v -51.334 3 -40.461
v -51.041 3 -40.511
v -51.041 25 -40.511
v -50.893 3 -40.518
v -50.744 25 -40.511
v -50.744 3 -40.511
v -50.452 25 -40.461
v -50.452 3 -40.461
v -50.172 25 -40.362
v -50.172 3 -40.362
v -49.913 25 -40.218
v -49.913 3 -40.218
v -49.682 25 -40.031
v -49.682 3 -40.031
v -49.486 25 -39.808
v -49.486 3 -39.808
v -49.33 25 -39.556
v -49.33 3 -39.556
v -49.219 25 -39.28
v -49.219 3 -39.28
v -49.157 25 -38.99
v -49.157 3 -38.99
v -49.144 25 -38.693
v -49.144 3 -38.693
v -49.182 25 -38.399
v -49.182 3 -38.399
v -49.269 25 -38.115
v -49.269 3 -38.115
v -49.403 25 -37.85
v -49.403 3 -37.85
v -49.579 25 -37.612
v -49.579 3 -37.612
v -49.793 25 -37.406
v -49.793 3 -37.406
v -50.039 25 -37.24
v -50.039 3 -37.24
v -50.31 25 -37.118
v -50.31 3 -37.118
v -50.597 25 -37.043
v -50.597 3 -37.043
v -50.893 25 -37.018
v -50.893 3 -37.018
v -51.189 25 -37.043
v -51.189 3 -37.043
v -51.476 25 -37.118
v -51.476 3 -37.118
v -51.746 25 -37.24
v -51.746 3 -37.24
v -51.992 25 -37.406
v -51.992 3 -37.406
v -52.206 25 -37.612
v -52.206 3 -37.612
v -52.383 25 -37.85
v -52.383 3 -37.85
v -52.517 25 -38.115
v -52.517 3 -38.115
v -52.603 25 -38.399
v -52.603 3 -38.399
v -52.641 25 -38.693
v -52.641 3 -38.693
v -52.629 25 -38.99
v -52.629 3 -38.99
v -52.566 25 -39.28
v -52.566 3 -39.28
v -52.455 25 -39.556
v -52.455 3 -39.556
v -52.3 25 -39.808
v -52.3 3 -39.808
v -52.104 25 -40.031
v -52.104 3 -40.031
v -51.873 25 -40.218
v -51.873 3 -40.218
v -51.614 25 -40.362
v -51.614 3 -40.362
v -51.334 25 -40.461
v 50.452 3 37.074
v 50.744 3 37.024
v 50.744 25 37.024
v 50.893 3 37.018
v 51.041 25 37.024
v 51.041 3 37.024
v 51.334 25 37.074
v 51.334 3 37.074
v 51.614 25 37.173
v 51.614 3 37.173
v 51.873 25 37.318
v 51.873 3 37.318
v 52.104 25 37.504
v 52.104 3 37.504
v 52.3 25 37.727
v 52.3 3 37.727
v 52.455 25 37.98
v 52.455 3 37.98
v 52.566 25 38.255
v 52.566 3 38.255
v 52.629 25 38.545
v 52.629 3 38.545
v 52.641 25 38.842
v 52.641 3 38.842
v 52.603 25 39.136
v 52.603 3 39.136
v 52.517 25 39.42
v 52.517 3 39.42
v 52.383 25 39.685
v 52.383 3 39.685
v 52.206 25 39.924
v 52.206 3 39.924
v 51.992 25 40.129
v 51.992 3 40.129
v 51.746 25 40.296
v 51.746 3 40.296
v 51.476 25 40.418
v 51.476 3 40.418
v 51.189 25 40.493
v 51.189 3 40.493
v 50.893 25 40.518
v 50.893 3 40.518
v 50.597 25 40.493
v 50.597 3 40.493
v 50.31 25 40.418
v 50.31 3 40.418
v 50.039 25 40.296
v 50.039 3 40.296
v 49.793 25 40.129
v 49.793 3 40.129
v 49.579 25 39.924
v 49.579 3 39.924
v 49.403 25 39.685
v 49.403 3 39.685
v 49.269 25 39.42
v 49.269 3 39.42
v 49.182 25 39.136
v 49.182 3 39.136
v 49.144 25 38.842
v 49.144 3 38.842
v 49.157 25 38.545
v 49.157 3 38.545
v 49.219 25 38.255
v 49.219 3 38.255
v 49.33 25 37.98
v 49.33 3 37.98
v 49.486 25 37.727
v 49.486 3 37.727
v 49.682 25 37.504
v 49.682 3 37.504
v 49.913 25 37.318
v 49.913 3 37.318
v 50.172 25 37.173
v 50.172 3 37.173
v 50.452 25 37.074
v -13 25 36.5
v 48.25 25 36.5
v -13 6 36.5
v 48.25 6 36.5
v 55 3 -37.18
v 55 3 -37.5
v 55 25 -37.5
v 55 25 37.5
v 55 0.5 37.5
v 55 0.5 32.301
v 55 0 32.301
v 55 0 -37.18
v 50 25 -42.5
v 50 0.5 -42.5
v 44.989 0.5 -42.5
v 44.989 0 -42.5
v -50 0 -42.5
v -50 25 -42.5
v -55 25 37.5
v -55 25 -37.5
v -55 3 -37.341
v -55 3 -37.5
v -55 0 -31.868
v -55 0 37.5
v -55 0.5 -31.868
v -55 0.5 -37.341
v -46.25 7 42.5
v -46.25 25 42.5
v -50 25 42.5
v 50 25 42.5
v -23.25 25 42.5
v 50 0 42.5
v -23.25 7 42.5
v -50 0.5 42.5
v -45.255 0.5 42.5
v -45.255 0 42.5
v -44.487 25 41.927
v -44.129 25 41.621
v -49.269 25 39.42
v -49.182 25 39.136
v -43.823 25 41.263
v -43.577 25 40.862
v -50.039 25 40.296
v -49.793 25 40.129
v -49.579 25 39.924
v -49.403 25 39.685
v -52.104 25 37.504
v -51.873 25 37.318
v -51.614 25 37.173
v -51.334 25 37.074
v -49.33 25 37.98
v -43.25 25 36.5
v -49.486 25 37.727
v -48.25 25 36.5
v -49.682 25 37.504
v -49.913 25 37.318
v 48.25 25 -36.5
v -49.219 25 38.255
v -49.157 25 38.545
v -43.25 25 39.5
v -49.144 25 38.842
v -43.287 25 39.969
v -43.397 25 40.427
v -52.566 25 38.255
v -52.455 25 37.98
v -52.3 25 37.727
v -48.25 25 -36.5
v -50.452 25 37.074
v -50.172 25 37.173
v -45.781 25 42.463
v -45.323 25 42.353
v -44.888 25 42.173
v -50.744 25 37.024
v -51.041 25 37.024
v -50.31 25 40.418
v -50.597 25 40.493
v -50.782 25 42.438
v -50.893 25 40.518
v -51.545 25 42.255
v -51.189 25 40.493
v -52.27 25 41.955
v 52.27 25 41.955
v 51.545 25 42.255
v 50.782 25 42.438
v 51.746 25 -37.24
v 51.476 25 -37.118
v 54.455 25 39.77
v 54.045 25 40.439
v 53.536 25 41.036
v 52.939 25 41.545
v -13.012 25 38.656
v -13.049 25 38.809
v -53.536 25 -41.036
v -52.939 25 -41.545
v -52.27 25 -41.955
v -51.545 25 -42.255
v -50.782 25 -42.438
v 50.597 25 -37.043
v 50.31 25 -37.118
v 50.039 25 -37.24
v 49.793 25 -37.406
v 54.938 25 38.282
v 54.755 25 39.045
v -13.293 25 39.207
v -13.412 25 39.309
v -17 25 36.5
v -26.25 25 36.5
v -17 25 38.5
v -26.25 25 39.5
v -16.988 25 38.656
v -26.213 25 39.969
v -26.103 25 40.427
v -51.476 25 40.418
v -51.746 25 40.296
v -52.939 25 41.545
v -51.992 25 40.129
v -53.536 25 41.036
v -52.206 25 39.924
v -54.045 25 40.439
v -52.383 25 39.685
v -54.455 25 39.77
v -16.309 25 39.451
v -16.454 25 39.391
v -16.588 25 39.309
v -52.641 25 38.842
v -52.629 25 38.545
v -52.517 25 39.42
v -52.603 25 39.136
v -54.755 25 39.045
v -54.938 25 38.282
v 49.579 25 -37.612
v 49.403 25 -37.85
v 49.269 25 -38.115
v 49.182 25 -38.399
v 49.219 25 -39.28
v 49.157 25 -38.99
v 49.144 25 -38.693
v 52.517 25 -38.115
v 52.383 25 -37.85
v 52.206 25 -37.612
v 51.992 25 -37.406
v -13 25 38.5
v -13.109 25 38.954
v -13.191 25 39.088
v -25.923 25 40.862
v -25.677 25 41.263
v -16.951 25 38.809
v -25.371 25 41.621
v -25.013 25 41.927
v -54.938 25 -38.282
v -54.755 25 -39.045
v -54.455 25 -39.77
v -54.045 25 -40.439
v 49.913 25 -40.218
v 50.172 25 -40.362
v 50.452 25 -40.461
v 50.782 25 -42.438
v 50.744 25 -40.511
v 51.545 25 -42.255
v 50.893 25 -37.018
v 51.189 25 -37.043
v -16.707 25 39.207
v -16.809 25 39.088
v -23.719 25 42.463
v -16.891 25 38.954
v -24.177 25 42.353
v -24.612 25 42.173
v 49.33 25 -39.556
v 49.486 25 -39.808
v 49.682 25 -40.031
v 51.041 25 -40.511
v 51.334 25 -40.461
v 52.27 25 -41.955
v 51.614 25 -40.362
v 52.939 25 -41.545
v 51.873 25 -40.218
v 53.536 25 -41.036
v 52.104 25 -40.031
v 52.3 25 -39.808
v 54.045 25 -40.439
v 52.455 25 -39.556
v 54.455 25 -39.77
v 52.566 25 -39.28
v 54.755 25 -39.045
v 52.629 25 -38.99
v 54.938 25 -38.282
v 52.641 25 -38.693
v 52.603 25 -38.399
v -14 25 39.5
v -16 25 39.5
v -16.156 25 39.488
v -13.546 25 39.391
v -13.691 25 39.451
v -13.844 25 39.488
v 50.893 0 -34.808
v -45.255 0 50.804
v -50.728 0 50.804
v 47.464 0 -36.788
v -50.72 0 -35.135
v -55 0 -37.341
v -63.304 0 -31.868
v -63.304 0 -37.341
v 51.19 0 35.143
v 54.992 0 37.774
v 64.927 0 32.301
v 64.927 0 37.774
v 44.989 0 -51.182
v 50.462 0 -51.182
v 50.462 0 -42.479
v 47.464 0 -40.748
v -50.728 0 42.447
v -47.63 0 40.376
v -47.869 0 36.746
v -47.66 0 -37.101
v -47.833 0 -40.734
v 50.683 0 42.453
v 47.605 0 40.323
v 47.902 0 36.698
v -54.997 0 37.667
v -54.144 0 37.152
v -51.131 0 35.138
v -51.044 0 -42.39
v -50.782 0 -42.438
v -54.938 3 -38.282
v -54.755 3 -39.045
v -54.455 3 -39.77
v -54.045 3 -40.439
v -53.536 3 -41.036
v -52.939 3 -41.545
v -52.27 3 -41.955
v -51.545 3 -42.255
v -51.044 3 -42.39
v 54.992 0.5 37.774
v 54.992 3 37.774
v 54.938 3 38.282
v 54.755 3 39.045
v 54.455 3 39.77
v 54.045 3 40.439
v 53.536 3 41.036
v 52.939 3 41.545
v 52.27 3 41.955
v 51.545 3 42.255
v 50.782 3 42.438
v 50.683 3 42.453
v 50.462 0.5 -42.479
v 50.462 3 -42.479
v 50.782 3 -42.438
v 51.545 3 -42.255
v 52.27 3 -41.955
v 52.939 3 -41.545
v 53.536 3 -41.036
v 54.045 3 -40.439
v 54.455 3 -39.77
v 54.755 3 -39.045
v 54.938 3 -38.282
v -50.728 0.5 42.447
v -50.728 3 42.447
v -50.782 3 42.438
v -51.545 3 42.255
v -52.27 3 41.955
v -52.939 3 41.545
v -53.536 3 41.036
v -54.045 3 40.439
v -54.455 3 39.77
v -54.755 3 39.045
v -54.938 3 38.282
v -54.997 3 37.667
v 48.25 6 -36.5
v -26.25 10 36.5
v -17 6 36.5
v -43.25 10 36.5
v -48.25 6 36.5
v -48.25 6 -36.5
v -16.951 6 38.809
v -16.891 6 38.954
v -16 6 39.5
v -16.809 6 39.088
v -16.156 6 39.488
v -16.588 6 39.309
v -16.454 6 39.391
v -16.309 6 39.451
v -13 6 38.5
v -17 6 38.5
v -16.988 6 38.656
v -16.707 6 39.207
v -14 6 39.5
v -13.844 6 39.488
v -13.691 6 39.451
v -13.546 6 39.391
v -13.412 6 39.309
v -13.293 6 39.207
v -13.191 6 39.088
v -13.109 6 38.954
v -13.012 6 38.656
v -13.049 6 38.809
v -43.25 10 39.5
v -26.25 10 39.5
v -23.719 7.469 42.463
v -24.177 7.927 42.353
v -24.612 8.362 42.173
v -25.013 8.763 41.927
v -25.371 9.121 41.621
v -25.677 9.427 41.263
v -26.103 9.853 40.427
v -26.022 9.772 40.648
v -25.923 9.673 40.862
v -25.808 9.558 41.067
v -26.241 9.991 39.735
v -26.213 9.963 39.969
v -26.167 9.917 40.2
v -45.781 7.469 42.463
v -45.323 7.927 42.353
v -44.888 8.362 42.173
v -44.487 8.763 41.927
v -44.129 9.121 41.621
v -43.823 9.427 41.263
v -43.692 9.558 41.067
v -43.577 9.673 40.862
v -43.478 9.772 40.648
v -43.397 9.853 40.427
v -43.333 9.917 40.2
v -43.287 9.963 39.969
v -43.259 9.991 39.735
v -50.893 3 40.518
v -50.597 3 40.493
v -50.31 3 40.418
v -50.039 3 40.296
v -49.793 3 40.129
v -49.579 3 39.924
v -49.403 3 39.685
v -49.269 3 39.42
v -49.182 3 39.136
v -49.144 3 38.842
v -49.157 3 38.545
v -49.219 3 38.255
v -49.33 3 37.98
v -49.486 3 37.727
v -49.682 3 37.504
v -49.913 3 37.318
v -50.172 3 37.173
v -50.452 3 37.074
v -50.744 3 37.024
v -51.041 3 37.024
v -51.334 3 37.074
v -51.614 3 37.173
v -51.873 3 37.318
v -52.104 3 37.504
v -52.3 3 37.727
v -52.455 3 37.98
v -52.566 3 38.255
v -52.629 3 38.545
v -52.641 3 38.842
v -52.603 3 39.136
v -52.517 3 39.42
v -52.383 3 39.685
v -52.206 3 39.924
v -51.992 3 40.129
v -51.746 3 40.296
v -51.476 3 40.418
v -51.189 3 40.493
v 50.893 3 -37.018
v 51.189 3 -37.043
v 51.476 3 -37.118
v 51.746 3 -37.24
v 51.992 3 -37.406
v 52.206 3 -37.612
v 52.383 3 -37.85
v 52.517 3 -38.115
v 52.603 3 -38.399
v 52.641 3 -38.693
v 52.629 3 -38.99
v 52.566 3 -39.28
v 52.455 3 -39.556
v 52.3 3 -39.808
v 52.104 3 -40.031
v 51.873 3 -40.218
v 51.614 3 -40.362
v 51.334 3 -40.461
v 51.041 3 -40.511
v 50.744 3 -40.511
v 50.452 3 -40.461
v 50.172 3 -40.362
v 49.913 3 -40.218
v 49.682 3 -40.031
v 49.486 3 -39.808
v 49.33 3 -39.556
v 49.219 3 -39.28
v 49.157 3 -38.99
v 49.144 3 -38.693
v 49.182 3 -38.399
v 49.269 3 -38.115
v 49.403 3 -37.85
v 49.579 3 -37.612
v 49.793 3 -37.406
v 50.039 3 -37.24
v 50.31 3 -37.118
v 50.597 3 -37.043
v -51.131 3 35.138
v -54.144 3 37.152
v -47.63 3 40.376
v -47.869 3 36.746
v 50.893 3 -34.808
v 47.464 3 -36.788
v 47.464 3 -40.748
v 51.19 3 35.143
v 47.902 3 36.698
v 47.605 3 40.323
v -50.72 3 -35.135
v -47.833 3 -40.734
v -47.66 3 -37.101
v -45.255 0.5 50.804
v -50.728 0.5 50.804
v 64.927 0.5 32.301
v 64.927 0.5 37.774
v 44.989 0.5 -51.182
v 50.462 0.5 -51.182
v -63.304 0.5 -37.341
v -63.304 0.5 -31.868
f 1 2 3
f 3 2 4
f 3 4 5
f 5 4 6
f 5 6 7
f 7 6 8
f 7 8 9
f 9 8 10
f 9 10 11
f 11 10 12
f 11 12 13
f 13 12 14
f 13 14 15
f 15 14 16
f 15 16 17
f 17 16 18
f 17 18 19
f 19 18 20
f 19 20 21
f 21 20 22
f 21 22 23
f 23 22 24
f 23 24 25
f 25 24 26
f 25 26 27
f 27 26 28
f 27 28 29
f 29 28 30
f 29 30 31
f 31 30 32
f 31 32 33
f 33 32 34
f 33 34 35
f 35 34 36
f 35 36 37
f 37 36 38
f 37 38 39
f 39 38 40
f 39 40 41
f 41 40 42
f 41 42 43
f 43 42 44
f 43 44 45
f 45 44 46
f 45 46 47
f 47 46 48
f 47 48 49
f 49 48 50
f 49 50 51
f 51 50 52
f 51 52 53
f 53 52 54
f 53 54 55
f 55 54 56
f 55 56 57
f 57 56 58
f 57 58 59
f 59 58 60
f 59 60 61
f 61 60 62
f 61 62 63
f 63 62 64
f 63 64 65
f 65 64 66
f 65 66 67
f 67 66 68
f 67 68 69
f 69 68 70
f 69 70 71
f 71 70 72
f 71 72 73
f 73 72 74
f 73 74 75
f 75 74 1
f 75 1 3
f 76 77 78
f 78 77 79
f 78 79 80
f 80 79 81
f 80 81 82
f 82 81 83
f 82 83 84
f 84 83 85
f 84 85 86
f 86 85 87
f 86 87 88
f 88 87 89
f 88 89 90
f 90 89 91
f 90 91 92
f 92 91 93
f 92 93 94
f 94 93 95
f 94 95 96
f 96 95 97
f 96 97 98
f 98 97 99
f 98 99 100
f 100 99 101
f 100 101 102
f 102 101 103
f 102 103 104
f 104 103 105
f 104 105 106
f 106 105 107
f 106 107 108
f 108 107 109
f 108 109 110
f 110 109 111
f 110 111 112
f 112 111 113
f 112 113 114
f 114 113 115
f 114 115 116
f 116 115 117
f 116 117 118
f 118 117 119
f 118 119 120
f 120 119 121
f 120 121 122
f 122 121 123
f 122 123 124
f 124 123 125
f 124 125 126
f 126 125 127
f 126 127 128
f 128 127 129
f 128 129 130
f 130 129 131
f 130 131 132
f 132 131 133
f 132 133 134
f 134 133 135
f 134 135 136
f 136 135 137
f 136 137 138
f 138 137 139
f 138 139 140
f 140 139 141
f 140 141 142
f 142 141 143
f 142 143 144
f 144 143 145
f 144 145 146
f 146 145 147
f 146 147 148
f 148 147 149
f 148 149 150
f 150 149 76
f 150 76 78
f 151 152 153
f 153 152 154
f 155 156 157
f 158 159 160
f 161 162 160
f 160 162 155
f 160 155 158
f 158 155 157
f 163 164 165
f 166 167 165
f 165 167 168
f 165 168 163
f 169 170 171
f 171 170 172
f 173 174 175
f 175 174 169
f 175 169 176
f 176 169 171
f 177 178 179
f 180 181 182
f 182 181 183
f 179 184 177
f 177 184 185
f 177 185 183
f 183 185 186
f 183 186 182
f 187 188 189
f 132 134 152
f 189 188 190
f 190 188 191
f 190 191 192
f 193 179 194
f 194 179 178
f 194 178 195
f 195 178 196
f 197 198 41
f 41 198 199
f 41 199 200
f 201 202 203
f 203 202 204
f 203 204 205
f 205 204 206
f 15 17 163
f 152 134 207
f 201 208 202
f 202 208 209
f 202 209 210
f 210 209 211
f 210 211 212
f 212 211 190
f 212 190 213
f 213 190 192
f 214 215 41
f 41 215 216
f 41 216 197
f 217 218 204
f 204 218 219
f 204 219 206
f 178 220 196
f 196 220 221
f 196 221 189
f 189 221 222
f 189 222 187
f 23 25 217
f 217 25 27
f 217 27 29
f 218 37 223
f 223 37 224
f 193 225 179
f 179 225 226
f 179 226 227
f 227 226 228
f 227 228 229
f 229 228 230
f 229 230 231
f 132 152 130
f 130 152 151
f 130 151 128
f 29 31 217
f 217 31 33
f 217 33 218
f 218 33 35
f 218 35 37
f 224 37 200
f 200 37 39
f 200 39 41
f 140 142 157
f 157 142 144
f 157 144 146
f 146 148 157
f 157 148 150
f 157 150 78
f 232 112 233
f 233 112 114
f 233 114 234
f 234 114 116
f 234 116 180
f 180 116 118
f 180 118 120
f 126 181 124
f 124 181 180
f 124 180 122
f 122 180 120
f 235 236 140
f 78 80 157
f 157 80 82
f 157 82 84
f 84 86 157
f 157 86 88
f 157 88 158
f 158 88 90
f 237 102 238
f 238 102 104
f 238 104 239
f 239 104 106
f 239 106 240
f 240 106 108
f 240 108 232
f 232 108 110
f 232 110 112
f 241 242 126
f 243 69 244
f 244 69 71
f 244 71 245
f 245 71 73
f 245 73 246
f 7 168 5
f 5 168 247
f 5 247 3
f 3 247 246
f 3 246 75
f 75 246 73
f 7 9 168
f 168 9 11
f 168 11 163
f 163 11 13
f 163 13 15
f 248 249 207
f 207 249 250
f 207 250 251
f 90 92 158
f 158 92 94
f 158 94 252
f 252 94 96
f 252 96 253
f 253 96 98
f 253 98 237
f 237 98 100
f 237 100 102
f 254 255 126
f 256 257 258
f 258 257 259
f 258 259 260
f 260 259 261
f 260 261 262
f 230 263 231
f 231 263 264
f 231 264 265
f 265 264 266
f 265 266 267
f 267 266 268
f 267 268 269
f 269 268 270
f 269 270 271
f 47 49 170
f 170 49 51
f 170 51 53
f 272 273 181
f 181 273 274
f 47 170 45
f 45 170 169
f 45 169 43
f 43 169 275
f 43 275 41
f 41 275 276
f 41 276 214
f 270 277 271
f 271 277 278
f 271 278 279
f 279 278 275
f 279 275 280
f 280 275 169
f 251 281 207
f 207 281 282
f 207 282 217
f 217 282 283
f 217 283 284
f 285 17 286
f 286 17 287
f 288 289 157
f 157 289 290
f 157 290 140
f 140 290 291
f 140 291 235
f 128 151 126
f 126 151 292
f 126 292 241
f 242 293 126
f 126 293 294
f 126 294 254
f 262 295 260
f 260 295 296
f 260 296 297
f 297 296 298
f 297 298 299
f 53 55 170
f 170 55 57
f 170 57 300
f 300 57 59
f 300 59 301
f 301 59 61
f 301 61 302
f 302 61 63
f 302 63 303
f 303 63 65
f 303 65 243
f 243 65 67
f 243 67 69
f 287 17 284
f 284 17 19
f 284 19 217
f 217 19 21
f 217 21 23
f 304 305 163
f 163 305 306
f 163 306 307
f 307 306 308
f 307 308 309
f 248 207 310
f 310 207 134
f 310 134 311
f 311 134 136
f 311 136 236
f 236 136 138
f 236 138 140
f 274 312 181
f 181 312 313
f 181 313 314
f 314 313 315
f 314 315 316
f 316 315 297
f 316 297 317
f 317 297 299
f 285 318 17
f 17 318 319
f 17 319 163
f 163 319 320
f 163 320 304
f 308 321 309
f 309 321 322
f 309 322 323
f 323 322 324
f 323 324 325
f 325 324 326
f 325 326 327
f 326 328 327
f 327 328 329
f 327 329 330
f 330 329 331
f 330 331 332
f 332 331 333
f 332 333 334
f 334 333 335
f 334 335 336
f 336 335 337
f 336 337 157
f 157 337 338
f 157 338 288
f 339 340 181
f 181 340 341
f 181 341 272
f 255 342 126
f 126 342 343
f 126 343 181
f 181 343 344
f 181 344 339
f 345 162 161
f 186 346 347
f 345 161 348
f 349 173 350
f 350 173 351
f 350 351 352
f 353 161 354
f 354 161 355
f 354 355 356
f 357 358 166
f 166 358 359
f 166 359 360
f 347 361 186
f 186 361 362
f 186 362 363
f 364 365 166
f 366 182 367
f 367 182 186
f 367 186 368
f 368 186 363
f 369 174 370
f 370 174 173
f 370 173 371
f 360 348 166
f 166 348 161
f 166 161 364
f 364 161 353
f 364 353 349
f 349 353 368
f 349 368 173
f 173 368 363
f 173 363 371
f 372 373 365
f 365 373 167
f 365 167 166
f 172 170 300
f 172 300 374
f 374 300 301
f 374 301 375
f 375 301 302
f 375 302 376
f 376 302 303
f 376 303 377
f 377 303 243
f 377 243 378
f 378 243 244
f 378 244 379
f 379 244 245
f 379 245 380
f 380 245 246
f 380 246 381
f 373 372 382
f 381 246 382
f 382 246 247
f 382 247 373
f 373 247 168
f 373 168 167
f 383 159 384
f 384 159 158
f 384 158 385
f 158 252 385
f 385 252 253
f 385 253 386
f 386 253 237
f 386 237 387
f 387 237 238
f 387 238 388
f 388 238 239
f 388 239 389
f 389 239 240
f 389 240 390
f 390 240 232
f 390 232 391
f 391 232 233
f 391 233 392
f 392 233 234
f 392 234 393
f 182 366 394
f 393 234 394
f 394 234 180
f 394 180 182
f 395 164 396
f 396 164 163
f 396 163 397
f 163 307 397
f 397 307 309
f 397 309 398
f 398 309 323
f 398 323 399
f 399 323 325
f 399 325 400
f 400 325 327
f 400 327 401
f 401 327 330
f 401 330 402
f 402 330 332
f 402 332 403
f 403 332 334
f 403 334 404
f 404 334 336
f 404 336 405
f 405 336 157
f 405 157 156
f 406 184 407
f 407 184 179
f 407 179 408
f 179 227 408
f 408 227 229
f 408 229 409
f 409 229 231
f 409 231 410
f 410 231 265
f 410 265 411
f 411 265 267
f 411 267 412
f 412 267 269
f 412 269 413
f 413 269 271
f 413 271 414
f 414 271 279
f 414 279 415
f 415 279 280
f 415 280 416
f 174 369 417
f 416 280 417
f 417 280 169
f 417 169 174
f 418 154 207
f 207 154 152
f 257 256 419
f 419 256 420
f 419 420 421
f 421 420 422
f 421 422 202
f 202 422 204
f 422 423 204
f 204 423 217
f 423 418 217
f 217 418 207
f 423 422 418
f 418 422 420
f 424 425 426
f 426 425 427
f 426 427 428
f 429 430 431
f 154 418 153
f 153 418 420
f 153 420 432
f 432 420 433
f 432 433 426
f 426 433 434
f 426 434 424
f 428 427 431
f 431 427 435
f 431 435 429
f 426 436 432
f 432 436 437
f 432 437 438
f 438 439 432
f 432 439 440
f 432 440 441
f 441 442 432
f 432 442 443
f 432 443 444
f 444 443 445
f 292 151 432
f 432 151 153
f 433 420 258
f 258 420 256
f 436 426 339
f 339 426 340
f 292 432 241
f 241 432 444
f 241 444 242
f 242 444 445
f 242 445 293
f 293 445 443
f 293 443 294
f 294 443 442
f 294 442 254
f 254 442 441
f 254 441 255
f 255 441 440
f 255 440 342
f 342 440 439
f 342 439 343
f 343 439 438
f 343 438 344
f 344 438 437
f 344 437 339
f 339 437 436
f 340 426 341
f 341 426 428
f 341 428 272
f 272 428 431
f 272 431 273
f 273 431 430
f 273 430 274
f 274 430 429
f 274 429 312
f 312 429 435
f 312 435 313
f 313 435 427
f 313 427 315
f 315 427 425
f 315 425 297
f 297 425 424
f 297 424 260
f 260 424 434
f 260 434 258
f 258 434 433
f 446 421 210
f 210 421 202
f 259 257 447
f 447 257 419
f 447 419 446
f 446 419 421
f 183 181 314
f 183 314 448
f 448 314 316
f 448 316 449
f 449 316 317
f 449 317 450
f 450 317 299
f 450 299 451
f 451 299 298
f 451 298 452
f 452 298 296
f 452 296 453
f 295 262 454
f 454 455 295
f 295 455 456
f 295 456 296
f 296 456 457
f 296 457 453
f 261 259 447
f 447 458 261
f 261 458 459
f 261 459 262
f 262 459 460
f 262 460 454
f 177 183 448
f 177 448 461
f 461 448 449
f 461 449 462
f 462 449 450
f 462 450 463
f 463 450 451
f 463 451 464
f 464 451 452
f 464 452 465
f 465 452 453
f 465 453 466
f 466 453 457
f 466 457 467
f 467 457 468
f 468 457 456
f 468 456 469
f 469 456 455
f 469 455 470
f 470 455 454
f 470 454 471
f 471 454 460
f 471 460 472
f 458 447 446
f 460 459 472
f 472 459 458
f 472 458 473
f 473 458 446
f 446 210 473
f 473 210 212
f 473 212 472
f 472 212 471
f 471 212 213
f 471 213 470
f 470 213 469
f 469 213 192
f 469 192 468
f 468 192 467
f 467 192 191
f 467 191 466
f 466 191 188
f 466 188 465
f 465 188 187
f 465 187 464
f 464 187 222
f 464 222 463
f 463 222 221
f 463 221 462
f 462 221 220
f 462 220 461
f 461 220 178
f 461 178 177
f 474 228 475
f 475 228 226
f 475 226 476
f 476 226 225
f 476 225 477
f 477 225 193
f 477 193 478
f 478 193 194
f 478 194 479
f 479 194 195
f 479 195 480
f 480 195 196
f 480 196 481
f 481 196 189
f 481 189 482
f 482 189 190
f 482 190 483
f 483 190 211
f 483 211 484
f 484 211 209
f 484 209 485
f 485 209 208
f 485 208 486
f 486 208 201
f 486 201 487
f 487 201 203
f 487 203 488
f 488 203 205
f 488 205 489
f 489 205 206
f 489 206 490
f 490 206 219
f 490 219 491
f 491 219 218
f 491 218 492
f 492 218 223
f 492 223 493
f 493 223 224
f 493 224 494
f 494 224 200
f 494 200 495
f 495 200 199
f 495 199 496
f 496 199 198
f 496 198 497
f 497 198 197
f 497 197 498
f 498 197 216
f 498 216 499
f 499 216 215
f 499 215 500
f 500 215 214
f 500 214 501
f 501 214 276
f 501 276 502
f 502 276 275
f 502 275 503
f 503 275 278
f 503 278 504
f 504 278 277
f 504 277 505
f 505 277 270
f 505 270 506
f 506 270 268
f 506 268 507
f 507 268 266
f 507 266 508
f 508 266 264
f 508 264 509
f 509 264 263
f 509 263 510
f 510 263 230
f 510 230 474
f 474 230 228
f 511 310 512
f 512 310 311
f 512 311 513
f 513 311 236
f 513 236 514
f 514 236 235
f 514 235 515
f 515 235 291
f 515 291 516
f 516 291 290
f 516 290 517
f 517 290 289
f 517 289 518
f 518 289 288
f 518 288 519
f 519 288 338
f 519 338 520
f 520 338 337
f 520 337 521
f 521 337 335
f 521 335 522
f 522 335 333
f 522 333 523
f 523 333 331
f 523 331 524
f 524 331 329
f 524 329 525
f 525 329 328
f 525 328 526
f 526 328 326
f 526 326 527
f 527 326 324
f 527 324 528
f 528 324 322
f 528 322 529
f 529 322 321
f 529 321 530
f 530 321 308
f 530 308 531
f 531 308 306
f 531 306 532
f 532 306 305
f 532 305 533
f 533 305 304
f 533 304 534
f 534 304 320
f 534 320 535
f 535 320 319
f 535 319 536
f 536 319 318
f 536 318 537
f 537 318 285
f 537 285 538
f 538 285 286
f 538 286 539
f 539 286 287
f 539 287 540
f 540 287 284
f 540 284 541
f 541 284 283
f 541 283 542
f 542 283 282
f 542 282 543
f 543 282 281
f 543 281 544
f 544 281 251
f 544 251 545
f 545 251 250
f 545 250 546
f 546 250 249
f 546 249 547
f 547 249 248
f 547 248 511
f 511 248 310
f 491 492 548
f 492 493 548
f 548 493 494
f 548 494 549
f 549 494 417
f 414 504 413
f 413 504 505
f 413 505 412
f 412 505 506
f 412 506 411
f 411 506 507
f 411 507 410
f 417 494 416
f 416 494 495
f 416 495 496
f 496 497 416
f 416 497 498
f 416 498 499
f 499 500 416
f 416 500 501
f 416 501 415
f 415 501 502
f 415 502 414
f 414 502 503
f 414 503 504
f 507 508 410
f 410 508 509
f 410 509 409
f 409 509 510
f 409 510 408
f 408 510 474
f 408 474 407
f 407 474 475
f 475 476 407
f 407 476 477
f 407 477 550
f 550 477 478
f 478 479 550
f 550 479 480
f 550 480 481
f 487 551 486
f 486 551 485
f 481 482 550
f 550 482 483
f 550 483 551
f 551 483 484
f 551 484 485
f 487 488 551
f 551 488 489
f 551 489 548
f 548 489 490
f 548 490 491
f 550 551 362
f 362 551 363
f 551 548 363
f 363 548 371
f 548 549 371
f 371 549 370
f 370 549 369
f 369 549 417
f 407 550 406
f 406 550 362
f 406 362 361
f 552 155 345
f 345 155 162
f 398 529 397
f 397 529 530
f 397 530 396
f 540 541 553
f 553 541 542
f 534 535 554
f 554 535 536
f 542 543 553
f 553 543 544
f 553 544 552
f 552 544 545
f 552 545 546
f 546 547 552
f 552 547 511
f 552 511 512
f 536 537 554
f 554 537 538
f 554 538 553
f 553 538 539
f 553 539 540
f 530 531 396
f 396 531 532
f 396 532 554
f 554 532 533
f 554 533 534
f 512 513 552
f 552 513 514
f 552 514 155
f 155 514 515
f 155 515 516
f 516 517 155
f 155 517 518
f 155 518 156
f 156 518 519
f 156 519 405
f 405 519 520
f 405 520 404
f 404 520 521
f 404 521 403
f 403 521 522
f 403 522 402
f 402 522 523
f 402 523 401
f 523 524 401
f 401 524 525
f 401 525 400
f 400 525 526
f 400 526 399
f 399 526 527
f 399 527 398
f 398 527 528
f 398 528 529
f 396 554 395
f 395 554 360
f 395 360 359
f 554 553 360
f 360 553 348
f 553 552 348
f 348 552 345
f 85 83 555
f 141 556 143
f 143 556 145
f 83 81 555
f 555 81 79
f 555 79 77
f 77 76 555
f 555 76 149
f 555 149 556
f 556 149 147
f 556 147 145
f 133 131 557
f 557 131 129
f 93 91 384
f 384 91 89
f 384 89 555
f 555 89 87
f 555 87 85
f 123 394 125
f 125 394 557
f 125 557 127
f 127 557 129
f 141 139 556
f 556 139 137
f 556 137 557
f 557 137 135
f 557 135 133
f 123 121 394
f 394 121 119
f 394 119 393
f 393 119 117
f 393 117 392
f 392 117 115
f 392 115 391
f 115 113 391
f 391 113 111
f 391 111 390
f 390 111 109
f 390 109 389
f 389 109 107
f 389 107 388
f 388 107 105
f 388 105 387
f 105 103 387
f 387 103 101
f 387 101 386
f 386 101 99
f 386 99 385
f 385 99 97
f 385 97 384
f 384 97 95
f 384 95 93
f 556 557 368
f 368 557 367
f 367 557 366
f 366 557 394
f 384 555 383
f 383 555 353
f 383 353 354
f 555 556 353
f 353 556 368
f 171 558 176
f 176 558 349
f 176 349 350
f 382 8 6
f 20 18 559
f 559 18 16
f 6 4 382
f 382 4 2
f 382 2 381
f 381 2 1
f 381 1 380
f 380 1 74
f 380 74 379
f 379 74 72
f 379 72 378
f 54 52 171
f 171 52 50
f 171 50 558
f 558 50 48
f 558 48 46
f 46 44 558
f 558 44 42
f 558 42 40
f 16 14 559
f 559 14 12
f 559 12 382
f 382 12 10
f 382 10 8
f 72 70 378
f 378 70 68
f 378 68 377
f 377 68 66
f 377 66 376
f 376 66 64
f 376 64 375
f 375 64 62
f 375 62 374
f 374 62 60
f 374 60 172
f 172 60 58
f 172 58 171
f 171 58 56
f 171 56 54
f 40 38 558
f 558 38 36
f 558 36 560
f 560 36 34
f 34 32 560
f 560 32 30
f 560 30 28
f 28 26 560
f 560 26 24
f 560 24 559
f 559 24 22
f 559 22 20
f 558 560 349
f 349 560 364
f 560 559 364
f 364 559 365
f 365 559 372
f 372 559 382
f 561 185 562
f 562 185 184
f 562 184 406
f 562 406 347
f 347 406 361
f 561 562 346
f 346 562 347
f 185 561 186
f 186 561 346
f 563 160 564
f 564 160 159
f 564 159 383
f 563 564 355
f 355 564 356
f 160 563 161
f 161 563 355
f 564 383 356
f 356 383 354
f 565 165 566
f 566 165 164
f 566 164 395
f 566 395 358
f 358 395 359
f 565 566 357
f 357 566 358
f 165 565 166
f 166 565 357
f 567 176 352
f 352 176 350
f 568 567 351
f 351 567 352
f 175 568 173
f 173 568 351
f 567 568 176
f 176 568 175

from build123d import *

# Parameters (mm, degrees)
SKETCH1_W                 = 110
SKETCH1_H                 = 85
BASE_DEPTH                = 25
FILLET1_R                 = 5
SKETCH2_W                 = 96.5
SKETCH2_H                 = 73
BASKET_DEPTH              = 19
SKETCH3_W                 = 4
SKETCH3_H                 = 6
WIRE_CHANNEL_DEPTH        = 19
WIRE_CHANNEL_ROUNDING_R   = 1
SWITCH_CUT_OUT_REACH      = 106.283
SKETCH5_W                 = 17
SKETCH5_H                 = 15
SWITCH_CUT_OUT_ROUNDING_R = 3
SKETCH14_R                = 1.75
CORNER_HOLES_DEPTH        = 74.866433513
BOTTOM_NUT_CUT_OUT_DEPTH  = 3
SKETCH18_W                = 8.304257035
SKETCH18_H                = 5.473277891
PRINTING_TIE_DOWNS_DEPTH  = 0.5


with BuildPart() as part:
    # Sketch1 → Base (new body)
    with BuildSketch(Plane(origin=(0, 0, 0), x_dir=(1, 0, 0), z_dir=(0, 1, 0))):
        Rectangle(SKETCH1_W, SKETCH1_H)
    extrude(amount=BASE_DEPTH)

    # Fillet1
    fillet1_edges = [part.edges().sort_by_distance(p)[0] for p in [
        (55, 12.5, 42.5),
        (-55, 12.5, 42.5),
        (-55, 12.5, -42.5),
        (55, 12.5, -42.5),
    ]]
    fillet(fillet1_edges, radius=FILLET1_R)

    # Sketch2 → Basket (cut)
    with BuildSketch(Plane(origin=(0, 25, 0), x_dir=(1, 0, 0), z_dir=(0, 1, 0))):
        Rectangle(SKETCH2_W, SKETCH2_H)
    extrude(amount=-BASKET_DEPTH, mode=Mode.SUBTRACT)

    # Sketch3 → Wire Channel (cut)
    with BuildSketch(Plane(origin=(0, 25, 0), x_dir=(1, 0, 0), z_dir=(0, 1, 0))):
        with Locations((-15, -36.5)):
            Rectangle(SKETCH3_W, SKETCH3_H)
    extrude(amount=-WIRE_CHANNEL_DEPTH, mode=Mode.SUBTRACT)

    # Wire Channel Rounding
    wire_channel_rounding_edges = [part.edges().sort_by_distance(p)[0] for p in [
        (-17, 15.5, 39.5),
        (-13, 15.5, 39.5),
    ]]
    fillet(wire_channel_rounding_edges, radius=WIRE_CHANNEL_ROUNDING_R)

    # Sketch5 → Switch Cut-out (cut, up to next)
    with BuildSketch(Plane.XY.offset(42.5), mode=Mode.PRIVATE) as switch_cut_out_sk1:
        with Locations((-34.75, 17.5)):
            Rectangle(SKETCH5_W, SKETCH5_H)
    switch_cut_out_tool1 = extrude(switch_cut_out_sk1.sketch, amount=-SWITCH_CUT_OUT_REACH, mode=Mode.PRIVATE) & part.part
    add(switch_cut_out_tool1.solids().sort_by_distance((-34.75, 17.5, 42.5))[0], mode=Mode.SUBTRACT)

    # Switch Cut-out Rounding
    switch_cut_out_rounding_edges = [part.edges().sort_by_distance(p)[0] for p in [
        (-43.25, 17.5, 42.5),
        (-34.75, 10, 42.5),
        (-26.25, 17.5, 42.5),
    ]]
    fillet(switch_cut_out_rounding_edges, radius=SWITCH_CUT_OUT_ROUNDING_R)

    # Sketch14 → Corner Holes (cut, through all)
    with BuildSketch(Plane(origin=(0, 25, 0), x_dir=(1, 0, 0), z_dir=(0, 1, 0))):
        with Locations(Location((-50.892766953, 38.767766953, 0), (0, 0, 270))):
            Circle(SKETCH14_R)
        with Locations(Location((50.892766953, 38.767766953, 0), (0, 0, 270))):
            Circle(SKETCH14_R)
        with Locations(Location((50.892766953, -38.767766953, 0), (0, 0, 270))):
            Circle(SKETCH14_R)
        with Locations(Location((-50.892766953, -38.767766953, 0), (0, 0, 270))):
            Circle(SKETCH14_R)
    extrude(amount=-CORNER_HOLES_DEPTH, mode=Mode.SUBTRACT)

    # Sketch15 → Bottom Nut Cut-out (cut)
    with BuildSketch(Plane.XZ):
        Polygon((-50.64101323, 42.388469214), (-52.178282629, 43.416097239), (-55.727023172, 38.10739593), (-54.143831126, 37.15203238), (-51.13140477, 35.13829702), (-47.868872697, 36.746365575), (-47.630234881, 40.375835508), align=None)
        Polygon((50.595962101, 42.39294376), (52.091508492, 43.427758232), (55.676210978, 38.247033564), (54.180664587, 37.212219092), (51.189571805, 35.142590146), (47.901674171, 36.698138008), (47.604869319, 40.323314814), align=None)
        Polygon((54.167766953, -36.699113605), (55.742766953, -37.608440279), (52.313760602, -43.547653498), (50.738760602, -42.638326824), (47.463760602, -40.747504693), (47.463760602, -36.788029213), (50.892766953, -34.808291473), align=None)
        Polygon((-53.9527362, -36.801402743), (-55.569189191, -37.634817242), (-52.682156679, -43.23437466), (-51.065703688, -42.400960161), (-47.832797706, -40.734131163), (-47.65986097, -37.100937955), (-50.719830218, -35.134573745), align=None)
    extrude(amount=-BOTTOM_NUT_CUT_OUT_DEPTH, mode=Mode.SUBTRACT)

    # Sketch18 → Printing Tie-downs (add)
    with BuildSketch(Plane.XZ):
        Polygon((-50.728122477, 42.446699673), (-50.728122477, 50.804257035), (-45.254844585, 50.804257035), (-45.254844585, 42.5), align=None)
        Polygon((54.992489727, 37.773945836), (64.927443113, 37.773945836), (64.927443113, 32.300667944), (55, 32.300667944), align=None)
        Polygon((50.462105691, -42.478600037), (50.462105691, -51.181840402), (44.9888278, -51.181840402), (44.9888278, -42.5), align=None)
        with Locations((-59.152128518, -34.604714443)):
            Rectangle(SKETCH18_W, SKETCH18_H)
    extrude(amount=-PRINTING_TIE_DOWNS_DEPTH)


solid = part.part
